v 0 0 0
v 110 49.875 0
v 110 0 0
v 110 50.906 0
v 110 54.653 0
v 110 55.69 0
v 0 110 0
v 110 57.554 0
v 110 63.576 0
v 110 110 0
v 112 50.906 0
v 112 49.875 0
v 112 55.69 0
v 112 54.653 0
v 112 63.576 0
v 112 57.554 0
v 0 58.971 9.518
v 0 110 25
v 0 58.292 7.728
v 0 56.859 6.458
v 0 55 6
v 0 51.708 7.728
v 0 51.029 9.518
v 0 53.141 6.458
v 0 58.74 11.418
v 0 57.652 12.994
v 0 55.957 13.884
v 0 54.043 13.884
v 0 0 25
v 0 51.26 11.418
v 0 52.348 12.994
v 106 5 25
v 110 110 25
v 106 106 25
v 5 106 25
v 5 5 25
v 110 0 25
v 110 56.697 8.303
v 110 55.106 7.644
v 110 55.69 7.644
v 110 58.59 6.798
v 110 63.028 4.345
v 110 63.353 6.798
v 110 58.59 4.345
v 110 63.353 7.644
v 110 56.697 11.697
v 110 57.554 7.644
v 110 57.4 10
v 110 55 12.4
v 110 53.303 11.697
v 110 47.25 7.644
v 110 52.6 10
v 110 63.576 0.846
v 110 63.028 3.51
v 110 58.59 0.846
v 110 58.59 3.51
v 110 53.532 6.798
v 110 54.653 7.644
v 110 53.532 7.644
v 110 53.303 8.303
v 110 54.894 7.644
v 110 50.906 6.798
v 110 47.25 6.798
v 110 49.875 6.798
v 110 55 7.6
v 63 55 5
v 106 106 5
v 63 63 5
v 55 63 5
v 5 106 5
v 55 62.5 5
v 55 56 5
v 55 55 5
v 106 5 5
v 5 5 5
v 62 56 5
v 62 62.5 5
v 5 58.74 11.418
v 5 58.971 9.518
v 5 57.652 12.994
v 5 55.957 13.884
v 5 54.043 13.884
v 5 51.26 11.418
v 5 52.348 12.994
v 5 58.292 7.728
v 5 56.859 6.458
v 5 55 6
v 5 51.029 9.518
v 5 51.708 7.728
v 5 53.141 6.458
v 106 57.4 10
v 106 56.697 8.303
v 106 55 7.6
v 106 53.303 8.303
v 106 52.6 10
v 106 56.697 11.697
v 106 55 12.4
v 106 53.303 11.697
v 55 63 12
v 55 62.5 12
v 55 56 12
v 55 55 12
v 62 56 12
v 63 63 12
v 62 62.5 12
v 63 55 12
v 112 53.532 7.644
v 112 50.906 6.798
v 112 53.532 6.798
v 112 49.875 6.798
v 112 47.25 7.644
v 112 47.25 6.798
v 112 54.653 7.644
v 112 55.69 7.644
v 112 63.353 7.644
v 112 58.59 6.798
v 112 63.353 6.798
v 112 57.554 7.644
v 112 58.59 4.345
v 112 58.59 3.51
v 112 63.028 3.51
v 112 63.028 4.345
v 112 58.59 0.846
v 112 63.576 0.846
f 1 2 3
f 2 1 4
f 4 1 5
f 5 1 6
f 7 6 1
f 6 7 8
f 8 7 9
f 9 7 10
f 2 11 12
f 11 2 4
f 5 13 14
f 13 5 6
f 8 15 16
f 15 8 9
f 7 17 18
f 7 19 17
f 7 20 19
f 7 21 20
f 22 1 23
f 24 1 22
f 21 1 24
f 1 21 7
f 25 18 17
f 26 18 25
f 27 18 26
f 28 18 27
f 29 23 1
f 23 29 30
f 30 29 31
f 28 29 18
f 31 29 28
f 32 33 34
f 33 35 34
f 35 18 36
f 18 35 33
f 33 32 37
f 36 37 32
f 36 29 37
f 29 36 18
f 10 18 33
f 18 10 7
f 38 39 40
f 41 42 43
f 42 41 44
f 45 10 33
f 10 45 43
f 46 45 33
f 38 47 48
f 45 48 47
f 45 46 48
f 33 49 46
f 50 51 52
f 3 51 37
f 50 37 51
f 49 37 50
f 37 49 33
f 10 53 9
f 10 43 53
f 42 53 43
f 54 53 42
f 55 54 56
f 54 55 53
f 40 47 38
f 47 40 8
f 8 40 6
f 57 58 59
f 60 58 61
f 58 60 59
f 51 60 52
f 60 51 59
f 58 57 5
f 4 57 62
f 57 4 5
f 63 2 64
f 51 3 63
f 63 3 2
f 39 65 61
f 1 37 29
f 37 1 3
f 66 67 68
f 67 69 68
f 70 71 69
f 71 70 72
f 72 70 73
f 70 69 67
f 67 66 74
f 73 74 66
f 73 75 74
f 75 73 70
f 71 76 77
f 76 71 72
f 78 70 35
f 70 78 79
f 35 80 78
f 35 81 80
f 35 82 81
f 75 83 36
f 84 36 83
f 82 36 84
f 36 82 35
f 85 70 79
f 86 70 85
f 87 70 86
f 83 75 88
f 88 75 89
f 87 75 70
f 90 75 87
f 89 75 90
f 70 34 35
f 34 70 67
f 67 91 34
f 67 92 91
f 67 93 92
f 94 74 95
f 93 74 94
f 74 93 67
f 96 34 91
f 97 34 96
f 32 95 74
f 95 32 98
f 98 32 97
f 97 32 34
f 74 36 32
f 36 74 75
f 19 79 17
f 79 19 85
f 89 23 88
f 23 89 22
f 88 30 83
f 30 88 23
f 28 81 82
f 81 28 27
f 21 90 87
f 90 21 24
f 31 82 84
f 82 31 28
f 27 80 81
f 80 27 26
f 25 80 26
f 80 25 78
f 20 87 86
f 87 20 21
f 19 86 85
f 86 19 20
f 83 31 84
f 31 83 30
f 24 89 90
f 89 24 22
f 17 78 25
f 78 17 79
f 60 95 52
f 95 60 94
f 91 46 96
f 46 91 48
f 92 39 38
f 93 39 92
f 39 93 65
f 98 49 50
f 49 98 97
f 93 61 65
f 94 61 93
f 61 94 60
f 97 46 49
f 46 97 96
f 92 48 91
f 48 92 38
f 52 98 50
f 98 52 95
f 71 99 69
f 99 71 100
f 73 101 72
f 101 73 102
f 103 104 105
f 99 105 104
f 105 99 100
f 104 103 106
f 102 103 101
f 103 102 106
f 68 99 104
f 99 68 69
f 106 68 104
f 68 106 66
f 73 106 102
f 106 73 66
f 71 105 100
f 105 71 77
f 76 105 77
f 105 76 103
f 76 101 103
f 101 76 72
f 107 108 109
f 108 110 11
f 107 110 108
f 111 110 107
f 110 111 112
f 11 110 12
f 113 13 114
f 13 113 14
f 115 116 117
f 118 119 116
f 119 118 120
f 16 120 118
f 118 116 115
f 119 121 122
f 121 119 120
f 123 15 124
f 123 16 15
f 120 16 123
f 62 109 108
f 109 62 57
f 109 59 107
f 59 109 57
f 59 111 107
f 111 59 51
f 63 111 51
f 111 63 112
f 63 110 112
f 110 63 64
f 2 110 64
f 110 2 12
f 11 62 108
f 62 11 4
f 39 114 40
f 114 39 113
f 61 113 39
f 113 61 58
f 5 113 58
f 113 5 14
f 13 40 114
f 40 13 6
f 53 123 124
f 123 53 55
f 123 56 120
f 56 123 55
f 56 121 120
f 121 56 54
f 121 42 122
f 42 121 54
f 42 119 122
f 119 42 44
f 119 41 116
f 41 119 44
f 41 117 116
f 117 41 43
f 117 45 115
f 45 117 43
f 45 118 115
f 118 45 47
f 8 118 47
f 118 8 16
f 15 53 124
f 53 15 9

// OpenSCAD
module basic_box()
{
    difference()
    {
        linear_extrude(25) square([110,110]);
        translate([5,5,5]) linear_extrude(25) square([101,101]);
    }
}


difference()
{
    basic_box();
    union()
    {
    translate([-5,55,10]) rotate([0,90,0]) cylinder(11,4,4);
    translate([100,55,10]) rotate([0,90,0]) cylinder(11,2.4,2.4);
    }
}


translate([55,55,0])
difference()
{
    linear_extrude(12) square([8,8]);
    translate([-1,1,5]) linear_extrude(16) square([8,6.5]);
}

translate([110,47,0]) rotate([90,0,0]) rotate([0,90,0]) linear_extrude(2) text("TIE", 8);
